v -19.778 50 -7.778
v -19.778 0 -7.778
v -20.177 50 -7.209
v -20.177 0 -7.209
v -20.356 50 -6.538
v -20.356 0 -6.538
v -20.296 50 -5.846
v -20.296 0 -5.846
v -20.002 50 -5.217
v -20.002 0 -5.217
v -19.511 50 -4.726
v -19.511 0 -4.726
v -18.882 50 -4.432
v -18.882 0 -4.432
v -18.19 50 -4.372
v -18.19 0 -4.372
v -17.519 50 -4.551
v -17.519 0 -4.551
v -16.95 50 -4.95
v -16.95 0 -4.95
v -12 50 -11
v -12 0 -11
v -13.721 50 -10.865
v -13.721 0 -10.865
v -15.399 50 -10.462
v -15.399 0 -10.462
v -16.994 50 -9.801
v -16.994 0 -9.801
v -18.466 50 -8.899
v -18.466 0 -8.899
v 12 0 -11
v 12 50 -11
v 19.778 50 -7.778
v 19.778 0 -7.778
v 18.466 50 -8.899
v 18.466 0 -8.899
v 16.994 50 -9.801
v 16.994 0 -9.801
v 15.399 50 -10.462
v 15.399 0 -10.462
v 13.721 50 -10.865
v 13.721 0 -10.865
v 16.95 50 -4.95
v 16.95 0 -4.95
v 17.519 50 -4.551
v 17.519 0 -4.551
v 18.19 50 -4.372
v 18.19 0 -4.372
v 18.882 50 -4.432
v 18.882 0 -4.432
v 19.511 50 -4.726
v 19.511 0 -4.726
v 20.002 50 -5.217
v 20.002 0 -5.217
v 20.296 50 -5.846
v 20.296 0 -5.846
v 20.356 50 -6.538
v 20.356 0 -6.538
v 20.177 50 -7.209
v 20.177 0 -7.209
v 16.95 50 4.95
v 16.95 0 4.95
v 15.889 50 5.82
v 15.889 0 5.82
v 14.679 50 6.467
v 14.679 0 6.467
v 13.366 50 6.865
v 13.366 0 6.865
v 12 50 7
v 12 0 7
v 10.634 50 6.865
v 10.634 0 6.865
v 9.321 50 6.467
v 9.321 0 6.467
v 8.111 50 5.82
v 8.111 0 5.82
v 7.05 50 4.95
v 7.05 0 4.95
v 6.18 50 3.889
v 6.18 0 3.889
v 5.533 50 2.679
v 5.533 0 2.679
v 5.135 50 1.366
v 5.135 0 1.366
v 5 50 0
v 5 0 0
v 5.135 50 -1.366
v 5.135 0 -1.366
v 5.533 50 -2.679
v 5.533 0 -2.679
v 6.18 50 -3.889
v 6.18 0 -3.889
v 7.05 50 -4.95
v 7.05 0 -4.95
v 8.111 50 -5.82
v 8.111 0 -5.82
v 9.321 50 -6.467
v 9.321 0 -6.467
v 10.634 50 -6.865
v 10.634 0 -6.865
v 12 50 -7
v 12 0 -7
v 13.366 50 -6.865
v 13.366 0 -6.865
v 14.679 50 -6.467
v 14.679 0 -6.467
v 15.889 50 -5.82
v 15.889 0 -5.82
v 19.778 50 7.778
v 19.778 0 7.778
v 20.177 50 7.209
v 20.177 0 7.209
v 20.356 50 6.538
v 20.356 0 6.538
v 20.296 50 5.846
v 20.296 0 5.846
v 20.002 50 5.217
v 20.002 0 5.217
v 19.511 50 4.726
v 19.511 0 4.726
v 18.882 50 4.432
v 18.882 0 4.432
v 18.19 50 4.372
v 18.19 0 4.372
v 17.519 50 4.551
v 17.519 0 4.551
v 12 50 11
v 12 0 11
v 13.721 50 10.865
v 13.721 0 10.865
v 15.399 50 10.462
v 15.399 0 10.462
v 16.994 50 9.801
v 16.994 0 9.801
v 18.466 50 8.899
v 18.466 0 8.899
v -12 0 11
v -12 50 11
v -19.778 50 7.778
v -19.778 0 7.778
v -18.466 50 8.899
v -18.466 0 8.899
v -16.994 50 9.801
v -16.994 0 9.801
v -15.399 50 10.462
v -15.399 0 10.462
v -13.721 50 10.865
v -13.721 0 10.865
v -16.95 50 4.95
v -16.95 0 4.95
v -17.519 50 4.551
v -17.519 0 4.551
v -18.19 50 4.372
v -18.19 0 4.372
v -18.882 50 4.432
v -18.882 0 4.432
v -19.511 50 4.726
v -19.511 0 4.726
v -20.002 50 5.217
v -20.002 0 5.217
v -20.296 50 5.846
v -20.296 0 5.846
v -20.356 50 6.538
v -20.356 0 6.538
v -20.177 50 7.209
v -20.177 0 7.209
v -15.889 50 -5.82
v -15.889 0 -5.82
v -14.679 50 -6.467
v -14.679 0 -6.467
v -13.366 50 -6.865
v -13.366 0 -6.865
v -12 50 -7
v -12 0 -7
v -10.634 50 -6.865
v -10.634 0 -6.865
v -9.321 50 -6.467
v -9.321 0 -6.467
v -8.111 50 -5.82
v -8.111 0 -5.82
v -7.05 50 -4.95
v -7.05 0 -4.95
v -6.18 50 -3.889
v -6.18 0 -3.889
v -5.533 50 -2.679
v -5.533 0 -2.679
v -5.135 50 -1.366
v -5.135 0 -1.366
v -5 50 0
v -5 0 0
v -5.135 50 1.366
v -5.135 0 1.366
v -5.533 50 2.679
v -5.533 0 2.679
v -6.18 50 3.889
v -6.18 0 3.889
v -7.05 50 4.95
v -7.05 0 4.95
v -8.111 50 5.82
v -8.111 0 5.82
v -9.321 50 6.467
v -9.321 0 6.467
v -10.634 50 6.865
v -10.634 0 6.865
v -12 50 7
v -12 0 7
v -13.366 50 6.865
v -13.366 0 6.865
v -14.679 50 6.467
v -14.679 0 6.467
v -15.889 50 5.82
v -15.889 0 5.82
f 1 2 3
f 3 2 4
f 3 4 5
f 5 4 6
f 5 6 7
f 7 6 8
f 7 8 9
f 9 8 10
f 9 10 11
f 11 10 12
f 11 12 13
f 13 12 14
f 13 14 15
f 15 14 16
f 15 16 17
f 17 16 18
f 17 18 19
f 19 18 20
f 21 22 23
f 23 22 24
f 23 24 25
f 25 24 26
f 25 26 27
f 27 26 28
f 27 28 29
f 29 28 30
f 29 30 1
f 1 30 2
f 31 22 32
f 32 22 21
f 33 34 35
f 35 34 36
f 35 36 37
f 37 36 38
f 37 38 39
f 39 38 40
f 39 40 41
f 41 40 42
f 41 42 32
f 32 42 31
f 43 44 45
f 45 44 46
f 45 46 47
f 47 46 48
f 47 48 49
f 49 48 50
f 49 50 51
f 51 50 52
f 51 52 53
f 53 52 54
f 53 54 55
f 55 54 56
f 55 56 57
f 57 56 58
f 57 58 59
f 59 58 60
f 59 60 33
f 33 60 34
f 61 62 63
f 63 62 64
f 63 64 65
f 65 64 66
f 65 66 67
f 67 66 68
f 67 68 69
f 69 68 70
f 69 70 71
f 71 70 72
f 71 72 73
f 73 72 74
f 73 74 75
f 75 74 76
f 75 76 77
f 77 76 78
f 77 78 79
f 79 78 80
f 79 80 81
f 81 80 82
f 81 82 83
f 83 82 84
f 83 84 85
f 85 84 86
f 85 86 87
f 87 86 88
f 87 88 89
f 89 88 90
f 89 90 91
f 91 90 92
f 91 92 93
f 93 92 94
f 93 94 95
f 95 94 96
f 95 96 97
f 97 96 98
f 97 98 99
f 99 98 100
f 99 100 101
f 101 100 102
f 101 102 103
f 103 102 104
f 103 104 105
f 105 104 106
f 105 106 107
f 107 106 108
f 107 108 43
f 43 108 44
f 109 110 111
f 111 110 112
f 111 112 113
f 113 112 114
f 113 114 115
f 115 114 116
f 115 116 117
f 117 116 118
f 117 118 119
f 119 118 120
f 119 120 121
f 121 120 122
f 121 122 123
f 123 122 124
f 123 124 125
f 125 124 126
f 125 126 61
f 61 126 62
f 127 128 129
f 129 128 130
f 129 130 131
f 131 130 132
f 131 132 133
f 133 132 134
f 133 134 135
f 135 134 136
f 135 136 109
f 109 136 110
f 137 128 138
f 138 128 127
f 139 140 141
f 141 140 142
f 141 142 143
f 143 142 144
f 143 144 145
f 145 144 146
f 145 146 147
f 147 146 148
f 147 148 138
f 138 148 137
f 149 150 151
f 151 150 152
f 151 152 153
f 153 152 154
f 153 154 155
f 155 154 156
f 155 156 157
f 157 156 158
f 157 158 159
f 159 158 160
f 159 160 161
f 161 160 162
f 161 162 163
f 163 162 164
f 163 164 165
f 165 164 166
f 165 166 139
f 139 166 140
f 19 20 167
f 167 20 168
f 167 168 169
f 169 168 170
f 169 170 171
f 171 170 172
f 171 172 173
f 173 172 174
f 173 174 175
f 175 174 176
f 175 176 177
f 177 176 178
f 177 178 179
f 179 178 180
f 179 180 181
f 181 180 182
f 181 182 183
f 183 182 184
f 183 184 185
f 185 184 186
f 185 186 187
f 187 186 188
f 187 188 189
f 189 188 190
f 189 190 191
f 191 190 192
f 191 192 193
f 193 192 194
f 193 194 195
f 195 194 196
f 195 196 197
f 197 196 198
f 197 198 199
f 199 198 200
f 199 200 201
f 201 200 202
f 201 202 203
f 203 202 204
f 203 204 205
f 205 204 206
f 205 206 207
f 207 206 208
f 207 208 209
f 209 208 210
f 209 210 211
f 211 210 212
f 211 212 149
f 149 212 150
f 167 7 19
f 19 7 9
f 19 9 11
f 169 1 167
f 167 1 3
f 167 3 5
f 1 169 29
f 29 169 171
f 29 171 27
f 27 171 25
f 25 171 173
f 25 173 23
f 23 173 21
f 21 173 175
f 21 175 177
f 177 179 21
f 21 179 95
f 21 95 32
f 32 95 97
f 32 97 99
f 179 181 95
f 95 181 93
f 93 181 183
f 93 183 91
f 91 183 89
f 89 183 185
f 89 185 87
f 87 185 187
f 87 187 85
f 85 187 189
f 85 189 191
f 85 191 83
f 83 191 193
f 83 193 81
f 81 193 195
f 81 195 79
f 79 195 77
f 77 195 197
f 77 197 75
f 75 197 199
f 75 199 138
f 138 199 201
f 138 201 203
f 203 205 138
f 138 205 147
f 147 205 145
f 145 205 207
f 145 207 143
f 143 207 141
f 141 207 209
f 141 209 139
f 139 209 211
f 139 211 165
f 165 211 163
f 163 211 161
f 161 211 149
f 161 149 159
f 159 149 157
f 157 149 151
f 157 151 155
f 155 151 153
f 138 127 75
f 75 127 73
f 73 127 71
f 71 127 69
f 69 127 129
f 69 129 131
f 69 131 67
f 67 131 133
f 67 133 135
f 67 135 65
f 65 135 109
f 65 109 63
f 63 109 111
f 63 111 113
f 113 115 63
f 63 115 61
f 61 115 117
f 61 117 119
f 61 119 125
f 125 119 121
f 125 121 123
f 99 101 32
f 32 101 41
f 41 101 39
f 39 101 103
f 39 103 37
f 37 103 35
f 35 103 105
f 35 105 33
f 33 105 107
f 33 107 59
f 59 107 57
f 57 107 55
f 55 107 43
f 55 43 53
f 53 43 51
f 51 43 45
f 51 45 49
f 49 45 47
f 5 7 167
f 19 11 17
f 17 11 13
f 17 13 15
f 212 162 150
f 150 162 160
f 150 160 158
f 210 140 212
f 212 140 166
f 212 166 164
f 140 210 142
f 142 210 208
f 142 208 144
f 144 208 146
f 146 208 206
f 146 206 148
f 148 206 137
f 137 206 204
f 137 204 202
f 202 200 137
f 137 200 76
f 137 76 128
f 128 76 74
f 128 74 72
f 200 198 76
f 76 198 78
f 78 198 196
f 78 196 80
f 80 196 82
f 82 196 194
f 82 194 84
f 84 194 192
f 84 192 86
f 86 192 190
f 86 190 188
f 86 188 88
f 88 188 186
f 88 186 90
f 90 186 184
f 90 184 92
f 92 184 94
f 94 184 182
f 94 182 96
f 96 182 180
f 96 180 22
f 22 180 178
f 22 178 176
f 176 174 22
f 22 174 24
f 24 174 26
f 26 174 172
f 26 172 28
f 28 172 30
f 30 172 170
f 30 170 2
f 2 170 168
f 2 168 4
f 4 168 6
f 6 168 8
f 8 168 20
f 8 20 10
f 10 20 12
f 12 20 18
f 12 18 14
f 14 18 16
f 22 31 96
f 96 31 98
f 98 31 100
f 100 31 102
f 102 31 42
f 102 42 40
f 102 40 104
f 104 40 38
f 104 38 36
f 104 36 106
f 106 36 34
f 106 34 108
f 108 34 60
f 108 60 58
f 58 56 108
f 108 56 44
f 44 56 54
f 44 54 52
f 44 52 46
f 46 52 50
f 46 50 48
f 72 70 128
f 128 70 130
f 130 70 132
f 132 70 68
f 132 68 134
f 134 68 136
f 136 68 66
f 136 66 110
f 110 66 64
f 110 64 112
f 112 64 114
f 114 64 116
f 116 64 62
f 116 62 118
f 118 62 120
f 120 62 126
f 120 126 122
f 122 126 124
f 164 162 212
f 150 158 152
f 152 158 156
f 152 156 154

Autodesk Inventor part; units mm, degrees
ref_plane "YZ Plane" through (0, 0, 0) normal (1, 0, 0) x (0, 1, 0)
ref_plane "XZ Plane" through (0, 0, 0) normal (0, 1, 0) x (-1, 0, 0)
ref_plane "XY Plane" through (0, 0, 0) normal (0, 0, 1) x (1, 0, 0)
sketch "스케치1" plane through (0, 0, 0) normal (0, 1, 0) x (-1, 0, 0)
  line L0 (0, -16.483) -> (0, 16.483) projected
  line L1 (31.8385, 0) -> (-30.0309, 0) projected
  arc A0 (16.9497, 4.9497) -> (16.9497, -4.9497) centre (12, 0) ccw
  line L2 (12, -11) -> (0, -11)
  line L3 (12, 11) -> (0, 11)
  line L4 (12, 0) -> (19.7782, -7.7782)
  line L5 (12, 0) -> (23, 0) construction
  arc A1 (19.7782, -7.7782) -> (16.9497, -4.9497) centre (18.364, -6.364) ccw
  arc A2 (16.9497, 4.9497) -> (19.7782, 7.7782) centre (18.364, 6.364) ccw
  arc A3 (12, -11) -> (19.7782, -7.7782) centre (12, 0) ccw
  arc A4 (19.7782, 7.7782) -> (12, 11) centre (12, 0) ccw
  arc A5 (-16.9497, -4.9497) -> (-16.9497, 4.9497) centre (-12, 0) ccw
  line L6 (-12, -11) -> (0, -11)
  arc A6 (-16.9497, -4.9497) -> (-19.7782, -7.7782) centre (-18.364, -6.364) ccw
  arc A7 (-19.7782, 7.7782) -> (-16.9497, 4.9497) centre (-18.364, 6.364) ccw
  arc A8 (-19.7782, -7.7782) -> (-12, -11) centre (-12, 0) ccw
  arc A9 (-12, 11) -> (-19.7782, 7.7782) centre (-12, 0) ccw
  line L7 (-12, 11) -> (0, 11)
  point P0 (0, 0)
  dimension "d0" = 14
  dimension "d1" = 12
  dimension "d3" = 45
  dimension "d4" = 11
extrude "돌출1" add sketch "스케치1" along normal blind 50 contours L6 A8 A6 A5 L1 L0 | L0 L1 A0 L4 A3 L2 | L1 A5 A7 A9 L7 L0 | L0 L3 A4 A2 A0 L1 | L4 A1
properties part number "카메라 고정 중단"
